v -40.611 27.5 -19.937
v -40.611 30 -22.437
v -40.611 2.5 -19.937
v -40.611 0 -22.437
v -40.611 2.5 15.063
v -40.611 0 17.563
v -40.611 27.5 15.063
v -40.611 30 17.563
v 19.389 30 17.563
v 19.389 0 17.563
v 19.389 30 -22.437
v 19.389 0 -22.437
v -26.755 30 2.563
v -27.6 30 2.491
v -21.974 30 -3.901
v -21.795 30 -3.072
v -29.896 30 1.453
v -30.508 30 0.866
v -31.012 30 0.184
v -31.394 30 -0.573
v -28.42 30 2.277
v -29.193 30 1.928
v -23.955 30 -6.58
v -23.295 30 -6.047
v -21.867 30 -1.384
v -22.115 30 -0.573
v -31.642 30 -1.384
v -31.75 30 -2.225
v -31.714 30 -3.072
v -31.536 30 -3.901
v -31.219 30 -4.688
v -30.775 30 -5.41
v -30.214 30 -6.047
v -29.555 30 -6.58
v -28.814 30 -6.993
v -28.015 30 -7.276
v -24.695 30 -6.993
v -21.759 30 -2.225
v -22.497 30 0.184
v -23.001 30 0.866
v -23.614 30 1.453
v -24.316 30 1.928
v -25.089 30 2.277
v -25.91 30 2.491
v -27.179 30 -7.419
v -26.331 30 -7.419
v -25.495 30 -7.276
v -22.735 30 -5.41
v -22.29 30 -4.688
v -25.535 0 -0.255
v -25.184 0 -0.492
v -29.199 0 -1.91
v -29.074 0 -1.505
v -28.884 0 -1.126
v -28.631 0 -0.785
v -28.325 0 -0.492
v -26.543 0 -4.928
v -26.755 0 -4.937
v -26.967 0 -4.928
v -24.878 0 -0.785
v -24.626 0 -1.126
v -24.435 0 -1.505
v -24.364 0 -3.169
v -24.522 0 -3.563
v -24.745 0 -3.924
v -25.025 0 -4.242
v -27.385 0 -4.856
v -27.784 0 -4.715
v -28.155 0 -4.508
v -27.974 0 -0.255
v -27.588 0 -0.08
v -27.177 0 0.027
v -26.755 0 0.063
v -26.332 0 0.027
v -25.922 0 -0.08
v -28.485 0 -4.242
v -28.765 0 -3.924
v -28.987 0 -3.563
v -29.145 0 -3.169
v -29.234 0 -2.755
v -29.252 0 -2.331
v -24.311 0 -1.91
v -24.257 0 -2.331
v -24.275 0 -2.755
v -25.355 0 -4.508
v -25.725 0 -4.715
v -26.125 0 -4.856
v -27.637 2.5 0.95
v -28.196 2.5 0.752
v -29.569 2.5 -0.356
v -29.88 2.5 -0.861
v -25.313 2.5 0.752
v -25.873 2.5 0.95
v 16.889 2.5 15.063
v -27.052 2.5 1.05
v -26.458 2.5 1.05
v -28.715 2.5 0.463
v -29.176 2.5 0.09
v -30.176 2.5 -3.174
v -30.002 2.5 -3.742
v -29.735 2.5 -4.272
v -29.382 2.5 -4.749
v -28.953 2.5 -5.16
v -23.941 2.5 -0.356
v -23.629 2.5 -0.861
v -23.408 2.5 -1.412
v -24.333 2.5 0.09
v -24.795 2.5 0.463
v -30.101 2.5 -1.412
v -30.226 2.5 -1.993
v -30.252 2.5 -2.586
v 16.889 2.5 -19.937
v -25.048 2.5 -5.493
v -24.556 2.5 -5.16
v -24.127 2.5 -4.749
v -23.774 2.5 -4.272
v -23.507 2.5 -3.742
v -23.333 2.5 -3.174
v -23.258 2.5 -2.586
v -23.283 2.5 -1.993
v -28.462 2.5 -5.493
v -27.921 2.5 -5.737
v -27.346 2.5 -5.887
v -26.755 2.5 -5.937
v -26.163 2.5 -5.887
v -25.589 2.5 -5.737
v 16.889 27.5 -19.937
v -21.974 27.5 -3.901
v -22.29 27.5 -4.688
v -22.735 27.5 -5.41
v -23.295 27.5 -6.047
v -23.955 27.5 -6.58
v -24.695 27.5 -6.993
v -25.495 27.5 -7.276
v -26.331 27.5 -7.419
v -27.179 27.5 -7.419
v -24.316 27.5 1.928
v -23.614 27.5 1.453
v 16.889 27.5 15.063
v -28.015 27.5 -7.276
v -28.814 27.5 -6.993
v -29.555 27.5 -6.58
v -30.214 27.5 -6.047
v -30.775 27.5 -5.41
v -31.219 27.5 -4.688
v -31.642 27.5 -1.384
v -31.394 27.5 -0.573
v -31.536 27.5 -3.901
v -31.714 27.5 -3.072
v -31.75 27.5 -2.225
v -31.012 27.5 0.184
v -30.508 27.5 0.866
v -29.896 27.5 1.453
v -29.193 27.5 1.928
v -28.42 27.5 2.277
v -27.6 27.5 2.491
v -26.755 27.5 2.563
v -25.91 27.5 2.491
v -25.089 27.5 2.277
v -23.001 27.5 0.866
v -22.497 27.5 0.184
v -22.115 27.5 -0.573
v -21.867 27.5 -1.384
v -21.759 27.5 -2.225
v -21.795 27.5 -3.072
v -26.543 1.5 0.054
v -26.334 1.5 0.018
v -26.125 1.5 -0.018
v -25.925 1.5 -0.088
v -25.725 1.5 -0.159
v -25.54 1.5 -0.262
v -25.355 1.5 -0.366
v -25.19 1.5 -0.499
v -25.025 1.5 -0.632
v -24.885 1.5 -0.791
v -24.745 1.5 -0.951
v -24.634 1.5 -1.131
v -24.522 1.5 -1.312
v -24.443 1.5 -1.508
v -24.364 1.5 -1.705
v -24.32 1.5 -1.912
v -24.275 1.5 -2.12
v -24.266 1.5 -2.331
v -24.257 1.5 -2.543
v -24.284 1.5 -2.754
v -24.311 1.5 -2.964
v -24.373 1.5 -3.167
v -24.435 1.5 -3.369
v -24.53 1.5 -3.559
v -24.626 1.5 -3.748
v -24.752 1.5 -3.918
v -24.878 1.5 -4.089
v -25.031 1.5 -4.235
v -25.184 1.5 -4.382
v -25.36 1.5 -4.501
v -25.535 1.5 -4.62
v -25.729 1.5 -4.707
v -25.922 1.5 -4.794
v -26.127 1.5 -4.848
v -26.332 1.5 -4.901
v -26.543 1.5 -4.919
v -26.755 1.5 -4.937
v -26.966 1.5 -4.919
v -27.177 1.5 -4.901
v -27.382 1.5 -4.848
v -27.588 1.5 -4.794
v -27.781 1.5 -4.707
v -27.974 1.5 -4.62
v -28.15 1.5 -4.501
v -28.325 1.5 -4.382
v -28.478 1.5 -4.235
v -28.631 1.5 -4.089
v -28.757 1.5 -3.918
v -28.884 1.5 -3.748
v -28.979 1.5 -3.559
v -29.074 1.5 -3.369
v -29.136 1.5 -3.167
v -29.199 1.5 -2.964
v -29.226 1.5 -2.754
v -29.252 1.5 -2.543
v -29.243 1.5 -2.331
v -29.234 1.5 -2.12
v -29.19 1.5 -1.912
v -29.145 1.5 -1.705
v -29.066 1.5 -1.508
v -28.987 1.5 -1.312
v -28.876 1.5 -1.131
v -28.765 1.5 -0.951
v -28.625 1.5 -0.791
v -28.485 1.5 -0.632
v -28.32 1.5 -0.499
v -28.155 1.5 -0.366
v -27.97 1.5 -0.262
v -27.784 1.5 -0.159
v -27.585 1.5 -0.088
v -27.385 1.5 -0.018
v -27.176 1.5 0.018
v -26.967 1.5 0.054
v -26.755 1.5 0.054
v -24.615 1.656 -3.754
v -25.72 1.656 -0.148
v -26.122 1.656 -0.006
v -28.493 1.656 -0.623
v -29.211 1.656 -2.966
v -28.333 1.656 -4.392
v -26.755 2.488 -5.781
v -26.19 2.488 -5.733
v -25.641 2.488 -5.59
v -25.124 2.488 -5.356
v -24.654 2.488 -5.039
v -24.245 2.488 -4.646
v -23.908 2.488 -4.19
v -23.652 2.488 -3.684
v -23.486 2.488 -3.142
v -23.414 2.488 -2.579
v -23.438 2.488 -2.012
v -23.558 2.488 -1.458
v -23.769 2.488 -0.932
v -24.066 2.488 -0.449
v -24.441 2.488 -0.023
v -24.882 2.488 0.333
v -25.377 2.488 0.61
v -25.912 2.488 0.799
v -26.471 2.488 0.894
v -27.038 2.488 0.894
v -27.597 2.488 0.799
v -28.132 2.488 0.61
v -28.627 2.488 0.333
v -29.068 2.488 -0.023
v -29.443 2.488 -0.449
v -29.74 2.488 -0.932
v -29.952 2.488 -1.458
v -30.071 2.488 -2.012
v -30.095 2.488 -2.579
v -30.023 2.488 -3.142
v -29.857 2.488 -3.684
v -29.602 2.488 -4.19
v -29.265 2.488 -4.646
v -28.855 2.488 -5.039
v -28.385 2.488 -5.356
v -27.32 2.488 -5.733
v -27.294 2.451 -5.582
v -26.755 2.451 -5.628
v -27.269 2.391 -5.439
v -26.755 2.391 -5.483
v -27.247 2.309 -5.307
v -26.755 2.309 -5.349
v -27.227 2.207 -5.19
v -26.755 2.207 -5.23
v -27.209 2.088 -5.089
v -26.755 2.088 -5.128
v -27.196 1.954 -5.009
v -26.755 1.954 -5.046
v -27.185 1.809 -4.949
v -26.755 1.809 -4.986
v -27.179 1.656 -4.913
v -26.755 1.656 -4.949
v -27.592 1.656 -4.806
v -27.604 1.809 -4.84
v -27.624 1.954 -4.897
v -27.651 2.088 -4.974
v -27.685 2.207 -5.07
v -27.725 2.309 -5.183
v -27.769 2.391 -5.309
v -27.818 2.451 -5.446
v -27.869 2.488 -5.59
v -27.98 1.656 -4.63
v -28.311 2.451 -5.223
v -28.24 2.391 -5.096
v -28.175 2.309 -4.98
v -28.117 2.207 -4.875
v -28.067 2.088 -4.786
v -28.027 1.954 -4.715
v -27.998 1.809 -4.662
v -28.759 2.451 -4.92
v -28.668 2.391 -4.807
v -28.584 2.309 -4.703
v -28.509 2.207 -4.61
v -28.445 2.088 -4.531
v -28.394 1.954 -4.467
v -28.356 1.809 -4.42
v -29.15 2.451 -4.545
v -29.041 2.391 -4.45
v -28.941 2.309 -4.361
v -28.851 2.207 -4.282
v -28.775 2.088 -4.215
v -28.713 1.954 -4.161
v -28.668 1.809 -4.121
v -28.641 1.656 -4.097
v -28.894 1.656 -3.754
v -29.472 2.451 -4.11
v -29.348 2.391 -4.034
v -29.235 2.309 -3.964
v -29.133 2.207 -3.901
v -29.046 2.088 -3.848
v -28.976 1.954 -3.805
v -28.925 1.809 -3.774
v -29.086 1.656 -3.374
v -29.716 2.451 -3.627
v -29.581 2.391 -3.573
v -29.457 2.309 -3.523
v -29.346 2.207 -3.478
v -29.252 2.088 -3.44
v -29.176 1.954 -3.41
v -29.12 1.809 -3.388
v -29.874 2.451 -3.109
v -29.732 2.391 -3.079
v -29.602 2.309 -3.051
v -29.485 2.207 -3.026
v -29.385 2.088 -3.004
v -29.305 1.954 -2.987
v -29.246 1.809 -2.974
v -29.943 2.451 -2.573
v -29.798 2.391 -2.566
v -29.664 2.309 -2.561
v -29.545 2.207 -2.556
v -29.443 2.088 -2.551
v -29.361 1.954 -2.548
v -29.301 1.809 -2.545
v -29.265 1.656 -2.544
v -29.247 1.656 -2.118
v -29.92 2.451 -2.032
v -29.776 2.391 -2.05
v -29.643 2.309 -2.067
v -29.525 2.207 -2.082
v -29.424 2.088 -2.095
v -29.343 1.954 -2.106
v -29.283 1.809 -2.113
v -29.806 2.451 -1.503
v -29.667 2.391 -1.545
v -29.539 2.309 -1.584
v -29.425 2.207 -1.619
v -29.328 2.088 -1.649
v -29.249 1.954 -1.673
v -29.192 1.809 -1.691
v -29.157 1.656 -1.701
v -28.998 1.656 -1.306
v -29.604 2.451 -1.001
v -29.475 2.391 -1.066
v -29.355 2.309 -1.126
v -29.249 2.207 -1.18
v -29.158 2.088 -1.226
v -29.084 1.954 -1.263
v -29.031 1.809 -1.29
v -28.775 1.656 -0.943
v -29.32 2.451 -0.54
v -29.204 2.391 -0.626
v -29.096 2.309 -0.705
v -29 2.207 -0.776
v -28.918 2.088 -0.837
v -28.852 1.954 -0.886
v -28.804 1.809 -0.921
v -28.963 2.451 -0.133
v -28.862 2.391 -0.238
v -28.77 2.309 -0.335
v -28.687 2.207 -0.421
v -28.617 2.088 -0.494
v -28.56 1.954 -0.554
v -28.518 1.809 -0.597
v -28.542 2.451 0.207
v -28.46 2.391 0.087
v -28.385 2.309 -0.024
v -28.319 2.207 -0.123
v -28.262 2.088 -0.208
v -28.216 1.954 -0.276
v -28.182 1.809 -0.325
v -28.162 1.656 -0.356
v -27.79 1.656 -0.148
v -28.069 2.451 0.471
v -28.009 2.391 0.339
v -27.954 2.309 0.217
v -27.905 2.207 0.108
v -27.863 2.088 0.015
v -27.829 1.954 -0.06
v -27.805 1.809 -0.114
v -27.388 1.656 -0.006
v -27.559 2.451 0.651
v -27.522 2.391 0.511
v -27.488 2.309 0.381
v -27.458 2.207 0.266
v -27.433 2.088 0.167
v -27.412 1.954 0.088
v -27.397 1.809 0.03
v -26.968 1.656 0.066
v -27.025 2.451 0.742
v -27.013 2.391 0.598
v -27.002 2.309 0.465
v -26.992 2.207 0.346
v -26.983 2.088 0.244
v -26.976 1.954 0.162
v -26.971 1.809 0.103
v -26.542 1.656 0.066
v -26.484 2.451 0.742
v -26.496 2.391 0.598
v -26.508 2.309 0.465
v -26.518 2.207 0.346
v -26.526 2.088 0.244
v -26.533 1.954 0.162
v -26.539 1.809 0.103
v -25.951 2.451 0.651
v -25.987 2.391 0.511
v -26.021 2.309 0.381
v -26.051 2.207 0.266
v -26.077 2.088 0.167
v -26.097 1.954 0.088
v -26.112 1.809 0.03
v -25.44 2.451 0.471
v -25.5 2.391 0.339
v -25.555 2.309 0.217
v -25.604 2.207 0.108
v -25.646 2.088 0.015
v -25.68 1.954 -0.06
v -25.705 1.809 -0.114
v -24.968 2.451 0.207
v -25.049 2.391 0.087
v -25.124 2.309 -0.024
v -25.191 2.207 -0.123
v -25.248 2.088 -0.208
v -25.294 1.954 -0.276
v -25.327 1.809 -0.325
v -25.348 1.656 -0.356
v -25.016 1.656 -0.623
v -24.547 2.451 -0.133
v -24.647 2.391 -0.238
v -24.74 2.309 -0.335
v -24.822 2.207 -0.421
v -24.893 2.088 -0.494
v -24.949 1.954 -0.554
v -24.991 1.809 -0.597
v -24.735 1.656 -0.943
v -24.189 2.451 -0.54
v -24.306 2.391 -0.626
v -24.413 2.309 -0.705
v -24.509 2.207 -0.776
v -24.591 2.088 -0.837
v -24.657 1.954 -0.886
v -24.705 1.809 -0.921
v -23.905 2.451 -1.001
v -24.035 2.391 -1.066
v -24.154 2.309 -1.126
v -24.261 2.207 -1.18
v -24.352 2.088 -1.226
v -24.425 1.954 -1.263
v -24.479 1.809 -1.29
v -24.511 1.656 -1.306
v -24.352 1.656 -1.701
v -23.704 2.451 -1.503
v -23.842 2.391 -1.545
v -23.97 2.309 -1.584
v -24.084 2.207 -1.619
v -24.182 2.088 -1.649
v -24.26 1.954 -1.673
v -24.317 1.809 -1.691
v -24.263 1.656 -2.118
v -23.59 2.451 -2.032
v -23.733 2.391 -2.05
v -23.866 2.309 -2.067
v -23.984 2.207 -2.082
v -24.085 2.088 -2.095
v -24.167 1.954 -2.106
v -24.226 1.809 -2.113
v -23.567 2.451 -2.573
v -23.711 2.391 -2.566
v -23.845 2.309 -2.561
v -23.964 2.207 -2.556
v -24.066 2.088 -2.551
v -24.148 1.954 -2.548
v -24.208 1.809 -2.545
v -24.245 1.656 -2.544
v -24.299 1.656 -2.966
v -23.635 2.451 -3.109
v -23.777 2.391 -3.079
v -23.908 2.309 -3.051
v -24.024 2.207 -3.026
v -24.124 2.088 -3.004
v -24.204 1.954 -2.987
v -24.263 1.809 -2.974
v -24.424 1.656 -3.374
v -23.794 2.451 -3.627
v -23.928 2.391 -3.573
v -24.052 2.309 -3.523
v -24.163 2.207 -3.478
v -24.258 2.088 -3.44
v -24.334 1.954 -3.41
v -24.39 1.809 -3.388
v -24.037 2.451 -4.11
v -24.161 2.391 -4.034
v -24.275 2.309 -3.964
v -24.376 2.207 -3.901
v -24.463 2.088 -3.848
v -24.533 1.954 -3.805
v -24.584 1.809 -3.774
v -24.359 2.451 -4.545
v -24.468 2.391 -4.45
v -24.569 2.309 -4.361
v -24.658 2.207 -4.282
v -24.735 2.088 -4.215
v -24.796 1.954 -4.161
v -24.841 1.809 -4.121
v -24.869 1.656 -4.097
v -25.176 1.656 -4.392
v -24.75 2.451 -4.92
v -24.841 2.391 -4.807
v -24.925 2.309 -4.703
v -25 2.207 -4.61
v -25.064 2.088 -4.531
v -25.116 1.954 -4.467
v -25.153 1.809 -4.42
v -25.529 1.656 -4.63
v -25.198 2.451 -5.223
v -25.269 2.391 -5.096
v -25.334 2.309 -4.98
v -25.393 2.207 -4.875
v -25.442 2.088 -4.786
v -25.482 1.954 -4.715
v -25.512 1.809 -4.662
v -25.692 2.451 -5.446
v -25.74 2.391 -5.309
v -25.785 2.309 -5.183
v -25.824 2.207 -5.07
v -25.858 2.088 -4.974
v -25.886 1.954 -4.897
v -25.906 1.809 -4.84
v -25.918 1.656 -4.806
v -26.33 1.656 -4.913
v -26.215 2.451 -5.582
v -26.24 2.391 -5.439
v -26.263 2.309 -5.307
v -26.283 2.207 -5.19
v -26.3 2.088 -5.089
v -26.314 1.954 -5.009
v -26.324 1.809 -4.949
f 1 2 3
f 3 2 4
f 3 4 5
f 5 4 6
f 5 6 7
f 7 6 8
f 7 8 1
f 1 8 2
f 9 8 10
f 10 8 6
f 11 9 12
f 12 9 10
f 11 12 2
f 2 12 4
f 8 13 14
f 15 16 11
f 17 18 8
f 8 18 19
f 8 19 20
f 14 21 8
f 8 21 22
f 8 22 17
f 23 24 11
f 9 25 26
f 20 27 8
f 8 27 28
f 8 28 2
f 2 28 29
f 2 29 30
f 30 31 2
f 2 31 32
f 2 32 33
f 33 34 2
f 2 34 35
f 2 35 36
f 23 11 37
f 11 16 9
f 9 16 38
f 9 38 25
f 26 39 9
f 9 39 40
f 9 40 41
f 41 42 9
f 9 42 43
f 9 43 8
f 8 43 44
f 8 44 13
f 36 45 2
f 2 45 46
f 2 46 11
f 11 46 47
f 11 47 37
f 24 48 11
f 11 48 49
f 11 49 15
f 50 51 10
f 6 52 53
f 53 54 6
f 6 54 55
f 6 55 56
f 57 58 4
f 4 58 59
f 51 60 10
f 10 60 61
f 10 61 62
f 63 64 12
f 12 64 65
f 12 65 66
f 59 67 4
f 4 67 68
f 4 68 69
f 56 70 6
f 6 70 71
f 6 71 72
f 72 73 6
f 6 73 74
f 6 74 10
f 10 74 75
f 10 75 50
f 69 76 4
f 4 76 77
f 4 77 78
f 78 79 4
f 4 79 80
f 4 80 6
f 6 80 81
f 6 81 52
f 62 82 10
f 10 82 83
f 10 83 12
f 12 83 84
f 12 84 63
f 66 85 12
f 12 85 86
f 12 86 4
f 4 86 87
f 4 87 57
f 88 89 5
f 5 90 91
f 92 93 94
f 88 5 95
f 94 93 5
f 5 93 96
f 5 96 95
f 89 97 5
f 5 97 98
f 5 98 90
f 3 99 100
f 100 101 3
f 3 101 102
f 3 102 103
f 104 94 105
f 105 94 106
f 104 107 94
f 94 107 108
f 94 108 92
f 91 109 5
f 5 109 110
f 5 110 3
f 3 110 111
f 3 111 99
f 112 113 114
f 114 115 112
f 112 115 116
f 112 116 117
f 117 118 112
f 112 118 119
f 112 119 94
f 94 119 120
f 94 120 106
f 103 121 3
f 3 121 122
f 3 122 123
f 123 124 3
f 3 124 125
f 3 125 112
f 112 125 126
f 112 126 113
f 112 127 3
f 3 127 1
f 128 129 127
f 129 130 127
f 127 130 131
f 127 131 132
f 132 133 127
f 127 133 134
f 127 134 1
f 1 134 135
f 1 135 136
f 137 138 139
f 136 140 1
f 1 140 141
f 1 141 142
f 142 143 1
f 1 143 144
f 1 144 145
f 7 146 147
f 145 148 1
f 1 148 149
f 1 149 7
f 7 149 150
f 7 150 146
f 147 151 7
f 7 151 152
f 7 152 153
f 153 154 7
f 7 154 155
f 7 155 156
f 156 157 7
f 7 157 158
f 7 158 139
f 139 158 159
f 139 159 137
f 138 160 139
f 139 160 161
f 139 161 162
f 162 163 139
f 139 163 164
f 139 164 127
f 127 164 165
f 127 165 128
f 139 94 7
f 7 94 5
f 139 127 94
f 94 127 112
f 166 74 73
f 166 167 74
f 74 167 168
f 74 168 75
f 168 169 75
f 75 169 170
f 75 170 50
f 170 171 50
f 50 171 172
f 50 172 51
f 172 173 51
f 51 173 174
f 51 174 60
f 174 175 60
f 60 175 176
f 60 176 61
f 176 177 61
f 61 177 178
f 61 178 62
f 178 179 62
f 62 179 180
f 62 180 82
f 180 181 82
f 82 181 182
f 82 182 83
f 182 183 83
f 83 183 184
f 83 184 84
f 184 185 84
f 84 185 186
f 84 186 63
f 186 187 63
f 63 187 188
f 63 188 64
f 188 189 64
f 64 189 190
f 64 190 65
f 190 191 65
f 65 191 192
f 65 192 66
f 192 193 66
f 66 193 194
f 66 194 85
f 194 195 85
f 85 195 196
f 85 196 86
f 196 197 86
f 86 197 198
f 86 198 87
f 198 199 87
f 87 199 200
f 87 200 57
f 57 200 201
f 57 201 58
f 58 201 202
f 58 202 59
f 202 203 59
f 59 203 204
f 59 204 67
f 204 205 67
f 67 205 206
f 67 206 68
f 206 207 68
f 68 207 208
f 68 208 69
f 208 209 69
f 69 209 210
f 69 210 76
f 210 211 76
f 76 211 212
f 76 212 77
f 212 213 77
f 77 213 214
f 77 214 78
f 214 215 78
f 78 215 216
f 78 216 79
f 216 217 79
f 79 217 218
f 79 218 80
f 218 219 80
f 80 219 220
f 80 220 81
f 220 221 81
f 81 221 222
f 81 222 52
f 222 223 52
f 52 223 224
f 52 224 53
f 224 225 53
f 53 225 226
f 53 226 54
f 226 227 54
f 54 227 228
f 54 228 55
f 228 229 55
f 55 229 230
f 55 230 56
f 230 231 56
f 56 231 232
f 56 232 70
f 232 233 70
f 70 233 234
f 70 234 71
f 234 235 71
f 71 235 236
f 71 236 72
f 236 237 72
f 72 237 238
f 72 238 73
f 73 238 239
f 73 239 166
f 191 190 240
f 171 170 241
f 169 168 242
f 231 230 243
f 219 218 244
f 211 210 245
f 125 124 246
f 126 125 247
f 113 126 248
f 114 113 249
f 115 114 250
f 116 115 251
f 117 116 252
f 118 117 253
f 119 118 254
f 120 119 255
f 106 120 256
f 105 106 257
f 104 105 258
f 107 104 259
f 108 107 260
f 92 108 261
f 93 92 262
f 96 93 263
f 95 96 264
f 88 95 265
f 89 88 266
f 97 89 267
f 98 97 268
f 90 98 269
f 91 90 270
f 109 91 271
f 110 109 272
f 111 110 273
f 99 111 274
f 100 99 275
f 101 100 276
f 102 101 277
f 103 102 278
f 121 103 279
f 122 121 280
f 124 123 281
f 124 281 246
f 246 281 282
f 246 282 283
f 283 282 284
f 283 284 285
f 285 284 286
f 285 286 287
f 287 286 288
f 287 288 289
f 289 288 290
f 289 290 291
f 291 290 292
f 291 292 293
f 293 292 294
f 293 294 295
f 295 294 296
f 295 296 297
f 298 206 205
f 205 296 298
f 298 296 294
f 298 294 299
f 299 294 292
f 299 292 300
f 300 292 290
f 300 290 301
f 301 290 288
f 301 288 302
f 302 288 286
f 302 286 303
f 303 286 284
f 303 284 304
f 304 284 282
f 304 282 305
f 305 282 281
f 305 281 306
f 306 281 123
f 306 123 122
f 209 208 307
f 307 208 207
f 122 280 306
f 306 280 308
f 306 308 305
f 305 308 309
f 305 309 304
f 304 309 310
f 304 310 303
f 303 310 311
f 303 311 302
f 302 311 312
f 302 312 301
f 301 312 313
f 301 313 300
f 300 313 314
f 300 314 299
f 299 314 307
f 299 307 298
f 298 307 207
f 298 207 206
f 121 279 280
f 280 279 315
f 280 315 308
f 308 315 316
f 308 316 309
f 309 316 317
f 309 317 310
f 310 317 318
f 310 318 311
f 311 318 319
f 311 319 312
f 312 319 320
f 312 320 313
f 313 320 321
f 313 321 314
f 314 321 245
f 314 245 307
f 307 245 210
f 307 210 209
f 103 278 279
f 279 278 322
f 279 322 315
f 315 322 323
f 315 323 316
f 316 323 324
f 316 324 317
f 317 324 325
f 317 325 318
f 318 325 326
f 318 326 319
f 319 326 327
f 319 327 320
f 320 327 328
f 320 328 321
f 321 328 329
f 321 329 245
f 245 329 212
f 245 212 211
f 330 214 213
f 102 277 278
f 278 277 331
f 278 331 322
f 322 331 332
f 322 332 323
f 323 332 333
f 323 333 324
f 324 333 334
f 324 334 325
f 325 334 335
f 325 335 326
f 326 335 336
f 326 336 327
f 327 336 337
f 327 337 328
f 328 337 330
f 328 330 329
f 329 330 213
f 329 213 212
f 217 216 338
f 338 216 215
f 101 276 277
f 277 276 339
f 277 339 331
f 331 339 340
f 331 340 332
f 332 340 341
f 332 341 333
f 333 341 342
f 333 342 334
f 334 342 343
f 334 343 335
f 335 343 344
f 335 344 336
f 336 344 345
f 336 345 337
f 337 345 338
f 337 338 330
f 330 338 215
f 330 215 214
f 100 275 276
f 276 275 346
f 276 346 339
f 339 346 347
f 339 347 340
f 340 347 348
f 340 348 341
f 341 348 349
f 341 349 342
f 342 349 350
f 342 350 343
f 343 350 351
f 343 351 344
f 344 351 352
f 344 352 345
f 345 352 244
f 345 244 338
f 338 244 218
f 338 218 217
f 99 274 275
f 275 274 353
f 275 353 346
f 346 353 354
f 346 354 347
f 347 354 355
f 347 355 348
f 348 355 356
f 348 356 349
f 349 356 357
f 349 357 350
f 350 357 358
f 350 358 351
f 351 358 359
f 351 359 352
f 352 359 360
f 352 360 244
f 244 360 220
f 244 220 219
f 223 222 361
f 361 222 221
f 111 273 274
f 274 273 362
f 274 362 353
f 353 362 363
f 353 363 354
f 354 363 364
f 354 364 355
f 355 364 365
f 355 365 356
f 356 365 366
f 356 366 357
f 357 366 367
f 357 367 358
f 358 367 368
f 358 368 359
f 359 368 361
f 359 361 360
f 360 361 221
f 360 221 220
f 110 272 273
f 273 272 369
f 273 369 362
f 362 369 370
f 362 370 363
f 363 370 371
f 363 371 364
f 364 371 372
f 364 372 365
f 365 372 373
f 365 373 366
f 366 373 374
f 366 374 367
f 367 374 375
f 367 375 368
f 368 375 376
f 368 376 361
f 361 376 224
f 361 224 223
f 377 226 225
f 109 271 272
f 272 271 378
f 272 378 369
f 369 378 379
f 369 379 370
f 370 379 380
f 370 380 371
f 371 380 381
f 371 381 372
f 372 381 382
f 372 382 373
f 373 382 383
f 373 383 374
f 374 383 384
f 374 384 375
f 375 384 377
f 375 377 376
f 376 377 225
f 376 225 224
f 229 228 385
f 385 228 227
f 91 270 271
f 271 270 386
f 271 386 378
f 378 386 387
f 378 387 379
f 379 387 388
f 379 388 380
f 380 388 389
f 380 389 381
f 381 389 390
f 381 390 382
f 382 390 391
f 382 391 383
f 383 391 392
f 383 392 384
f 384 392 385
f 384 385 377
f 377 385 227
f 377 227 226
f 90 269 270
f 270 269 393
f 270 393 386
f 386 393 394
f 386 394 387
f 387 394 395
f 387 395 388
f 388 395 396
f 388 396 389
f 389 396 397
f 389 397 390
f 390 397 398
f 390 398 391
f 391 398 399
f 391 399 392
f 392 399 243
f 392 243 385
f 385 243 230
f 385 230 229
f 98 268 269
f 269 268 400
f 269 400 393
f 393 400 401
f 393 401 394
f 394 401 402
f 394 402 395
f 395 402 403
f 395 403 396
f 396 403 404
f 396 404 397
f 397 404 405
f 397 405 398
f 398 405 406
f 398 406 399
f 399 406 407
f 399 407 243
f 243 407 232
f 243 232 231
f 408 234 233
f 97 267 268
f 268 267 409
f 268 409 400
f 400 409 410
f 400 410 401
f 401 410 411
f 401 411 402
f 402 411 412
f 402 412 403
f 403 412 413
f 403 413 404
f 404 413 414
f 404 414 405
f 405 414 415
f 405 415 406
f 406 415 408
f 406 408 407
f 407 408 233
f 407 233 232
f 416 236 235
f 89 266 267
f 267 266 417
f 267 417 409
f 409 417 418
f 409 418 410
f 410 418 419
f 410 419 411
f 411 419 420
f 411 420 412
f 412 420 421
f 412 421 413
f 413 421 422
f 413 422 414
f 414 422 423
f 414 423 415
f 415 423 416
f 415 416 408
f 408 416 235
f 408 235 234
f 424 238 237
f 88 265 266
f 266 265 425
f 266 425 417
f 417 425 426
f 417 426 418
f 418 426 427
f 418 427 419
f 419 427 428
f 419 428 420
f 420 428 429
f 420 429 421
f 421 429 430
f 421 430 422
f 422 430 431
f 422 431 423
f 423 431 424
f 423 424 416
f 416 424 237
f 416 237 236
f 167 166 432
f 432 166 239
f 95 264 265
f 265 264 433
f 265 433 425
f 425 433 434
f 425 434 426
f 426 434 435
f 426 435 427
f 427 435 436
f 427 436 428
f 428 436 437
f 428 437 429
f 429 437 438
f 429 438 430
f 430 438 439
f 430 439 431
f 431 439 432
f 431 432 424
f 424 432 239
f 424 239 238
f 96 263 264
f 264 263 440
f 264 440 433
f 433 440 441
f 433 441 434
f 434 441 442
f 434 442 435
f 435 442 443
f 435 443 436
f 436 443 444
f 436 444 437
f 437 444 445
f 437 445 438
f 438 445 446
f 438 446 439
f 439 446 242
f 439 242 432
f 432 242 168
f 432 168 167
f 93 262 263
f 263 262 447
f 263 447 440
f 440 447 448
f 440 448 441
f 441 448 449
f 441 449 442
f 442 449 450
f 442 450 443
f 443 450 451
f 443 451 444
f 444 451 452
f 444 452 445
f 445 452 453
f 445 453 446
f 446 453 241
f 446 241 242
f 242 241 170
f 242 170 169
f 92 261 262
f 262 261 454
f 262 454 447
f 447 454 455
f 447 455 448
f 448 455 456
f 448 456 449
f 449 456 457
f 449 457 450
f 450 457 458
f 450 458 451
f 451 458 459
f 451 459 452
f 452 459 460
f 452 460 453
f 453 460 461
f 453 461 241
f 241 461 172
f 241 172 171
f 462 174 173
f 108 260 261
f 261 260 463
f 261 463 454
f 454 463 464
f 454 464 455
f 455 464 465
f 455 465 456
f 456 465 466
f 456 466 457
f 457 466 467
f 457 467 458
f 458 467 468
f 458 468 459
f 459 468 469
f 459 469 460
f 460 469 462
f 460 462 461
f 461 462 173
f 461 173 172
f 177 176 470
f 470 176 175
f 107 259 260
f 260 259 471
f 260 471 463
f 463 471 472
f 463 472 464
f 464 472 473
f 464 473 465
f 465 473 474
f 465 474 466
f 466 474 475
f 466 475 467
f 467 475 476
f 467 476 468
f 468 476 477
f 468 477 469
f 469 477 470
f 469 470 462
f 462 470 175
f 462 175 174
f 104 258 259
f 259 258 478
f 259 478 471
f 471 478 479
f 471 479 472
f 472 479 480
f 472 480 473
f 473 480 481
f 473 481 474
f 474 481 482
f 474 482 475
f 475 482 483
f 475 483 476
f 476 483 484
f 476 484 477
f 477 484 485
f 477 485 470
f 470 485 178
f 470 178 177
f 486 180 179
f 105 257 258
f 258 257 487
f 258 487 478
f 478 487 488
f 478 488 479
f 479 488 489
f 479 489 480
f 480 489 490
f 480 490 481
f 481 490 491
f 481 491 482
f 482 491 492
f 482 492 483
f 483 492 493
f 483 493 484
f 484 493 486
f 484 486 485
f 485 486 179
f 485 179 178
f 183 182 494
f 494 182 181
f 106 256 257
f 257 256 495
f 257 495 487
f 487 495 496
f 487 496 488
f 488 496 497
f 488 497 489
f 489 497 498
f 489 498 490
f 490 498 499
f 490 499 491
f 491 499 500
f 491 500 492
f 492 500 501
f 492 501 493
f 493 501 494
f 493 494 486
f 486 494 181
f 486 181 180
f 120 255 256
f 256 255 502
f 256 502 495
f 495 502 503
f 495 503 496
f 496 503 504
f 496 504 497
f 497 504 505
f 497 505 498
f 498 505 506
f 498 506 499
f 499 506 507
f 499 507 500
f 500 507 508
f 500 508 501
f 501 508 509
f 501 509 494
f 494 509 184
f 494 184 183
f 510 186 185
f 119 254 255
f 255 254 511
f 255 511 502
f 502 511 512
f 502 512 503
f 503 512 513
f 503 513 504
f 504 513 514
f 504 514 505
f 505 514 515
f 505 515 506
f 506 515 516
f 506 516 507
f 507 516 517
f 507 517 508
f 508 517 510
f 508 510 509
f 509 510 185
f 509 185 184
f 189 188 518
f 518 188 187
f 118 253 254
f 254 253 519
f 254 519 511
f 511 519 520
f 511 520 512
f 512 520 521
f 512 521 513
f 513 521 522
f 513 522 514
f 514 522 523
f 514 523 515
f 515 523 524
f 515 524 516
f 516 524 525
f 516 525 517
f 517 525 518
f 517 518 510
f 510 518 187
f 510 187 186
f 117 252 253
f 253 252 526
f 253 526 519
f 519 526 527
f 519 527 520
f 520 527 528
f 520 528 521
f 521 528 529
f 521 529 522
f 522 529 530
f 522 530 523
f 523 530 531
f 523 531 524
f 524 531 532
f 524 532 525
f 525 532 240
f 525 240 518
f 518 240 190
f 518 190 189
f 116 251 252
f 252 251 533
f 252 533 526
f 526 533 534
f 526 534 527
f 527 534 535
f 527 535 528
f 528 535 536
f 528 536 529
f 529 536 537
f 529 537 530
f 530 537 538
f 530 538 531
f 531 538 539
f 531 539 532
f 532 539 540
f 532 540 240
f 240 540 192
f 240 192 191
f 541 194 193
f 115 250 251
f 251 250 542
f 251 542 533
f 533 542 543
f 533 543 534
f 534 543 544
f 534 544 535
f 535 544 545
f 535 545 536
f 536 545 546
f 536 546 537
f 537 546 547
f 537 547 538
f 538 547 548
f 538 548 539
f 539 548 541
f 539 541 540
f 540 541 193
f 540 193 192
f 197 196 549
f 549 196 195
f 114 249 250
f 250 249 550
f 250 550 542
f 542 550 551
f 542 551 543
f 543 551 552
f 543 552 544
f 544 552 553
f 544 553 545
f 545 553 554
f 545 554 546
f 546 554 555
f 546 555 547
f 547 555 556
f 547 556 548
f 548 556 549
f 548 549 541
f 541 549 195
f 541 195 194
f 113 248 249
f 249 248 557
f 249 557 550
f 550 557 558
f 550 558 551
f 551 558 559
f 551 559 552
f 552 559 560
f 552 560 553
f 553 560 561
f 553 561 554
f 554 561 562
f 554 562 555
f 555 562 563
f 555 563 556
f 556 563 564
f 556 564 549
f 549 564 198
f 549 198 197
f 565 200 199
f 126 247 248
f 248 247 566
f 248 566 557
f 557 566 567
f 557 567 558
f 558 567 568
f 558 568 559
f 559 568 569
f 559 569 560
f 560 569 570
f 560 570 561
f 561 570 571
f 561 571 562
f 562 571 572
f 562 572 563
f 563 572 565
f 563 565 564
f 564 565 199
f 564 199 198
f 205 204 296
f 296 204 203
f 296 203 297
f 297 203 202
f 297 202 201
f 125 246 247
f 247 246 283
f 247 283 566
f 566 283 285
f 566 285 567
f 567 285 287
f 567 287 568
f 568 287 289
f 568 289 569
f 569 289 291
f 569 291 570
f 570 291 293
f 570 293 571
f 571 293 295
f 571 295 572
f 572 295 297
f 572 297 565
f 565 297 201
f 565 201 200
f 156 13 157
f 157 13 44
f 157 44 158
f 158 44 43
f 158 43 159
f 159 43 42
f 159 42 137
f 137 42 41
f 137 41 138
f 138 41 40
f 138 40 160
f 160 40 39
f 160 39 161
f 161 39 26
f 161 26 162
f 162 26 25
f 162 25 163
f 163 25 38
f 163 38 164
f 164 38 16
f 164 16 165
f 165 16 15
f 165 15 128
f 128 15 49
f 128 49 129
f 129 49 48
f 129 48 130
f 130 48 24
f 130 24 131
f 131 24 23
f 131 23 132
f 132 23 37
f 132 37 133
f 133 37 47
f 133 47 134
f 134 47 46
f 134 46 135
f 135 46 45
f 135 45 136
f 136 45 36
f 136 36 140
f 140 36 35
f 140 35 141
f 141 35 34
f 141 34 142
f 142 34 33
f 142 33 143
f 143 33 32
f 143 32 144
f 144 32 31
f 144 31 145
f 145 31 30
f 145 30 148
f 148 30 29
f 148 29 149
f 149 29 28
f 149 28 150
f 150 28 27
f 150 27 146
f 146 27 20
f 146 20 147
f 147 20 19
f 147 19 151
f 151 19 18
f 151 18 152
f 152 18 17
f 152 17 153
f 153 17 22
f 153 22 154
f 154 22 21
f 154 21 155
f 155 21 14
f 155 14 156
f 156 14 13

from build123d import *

# Parameters (mm, degrees)
SKETCH1_W           = 60
SKETCH1_H           = 40
BOSS_EXTRUDE1_DEPTH = 30
SKETCH2_OUTSIDE_W   = 57.62
SKETCH2_OUTSIDE_H   = 47.62
SKETCH2_OUTSIDE_W_2 = 40
SKETCH2_OUTSIDE_H_2 = 30
SKETCH2_OUTSIDE_W_3 = 35
SKETCH2_OUTSIDE_H_3 = 25
CUT_EXTRUDE1_DEPTH  = 57.5
SKETCH3_R           = 2.5
CUT_EXTRUDE2_DEPTH  = 57.5
FILLET1_R           = 1
SKETCH4_R           = 5
CUT_EXTRUDE3_DEPTH  = 20


with BuildPart() as part:
    # Sketch1 → Boss-Extrude1 (new body)
    with BuildSketch(Plane(origin=(0, 0, 0), x_dir=(1, 0, 0), z_dir=(0, 1, 0))):
        with Locations((-10.610539169, 2.437108943)):
            Rectangle(SKETCH1_W, SKETCH1_H)
    extrude(amount=BOSS_EXTRUDE1_DEPTH)

    # Sketch2 outside → Cut-Extrude1 (cut)
    # profile 1 of 2: a face of its own
    with BuildSketch(Plane.ZY.offset(40.610539169)):
        with Locations((-2.437, 15)):
            Rectangle(SKETCH2_OUTSIDE_W, SKETCH2_OUTSIDE_H)
        with Locations((-2.437108943, 15)):
            Rectangle(SKETCH2_OUTSIDE_W_2, SKETCH2_OUTSIDE_H_2, mode=Mode.SUBTRACT)
    # profile 2 of 2: a face of its own
    with BuildSketch(Plane.ZY.offset(40.610539169)):
        with Locations((-2.437108943, 15)):
            Rectangle(SKETCH2_OUTSIDE_W_3, SKETCH2_OUTSIDE_H_3)
    extrude(amount=-CUT_EXTRUDE1_DEPTH, mode=Mode.SUBTRACT)

    # Sketch3 → Cut-Extrude2 (cut)
    with BuildSketch(Plane(origin=(0, 30, 0), x_dir=(1, 0, 0), z_dir=(0, 1, 0))):
        with Locations(Location((-26.75468652, 2.437108943, 0), (0, 0, 270))):
            Circle(SKETCH3_R)
    extrude(amount=-CUT_EXTRUDE2_DEPTH, mode=Mode.SUBTRACT)

    # Fillet1
    fillet1_edges = [part.edges().sort_by_distance(p)[0] for p in [
        (-26.75468652, 2.5, -4.937108943),
    ]]
    fillet(fillet1_edges, radius=FILLET1_R)

    # Sketch4 → Cut-Extrude3 (cut)
    with BuildSketch(Plane(origin=(0, 30, 0), x_dir=(1, 0, 0), z_dir=(0, 1, 0))):
        with Locations(Location((-26.75468652, 2.437108943, 0), (0, 0, 270))):
            Circle(SKETCH4_R)
    extrude(amount=-CUT_EXTRUDE3_DEPTH, mode=Mode.SUBTRACT)


solid = part.part
